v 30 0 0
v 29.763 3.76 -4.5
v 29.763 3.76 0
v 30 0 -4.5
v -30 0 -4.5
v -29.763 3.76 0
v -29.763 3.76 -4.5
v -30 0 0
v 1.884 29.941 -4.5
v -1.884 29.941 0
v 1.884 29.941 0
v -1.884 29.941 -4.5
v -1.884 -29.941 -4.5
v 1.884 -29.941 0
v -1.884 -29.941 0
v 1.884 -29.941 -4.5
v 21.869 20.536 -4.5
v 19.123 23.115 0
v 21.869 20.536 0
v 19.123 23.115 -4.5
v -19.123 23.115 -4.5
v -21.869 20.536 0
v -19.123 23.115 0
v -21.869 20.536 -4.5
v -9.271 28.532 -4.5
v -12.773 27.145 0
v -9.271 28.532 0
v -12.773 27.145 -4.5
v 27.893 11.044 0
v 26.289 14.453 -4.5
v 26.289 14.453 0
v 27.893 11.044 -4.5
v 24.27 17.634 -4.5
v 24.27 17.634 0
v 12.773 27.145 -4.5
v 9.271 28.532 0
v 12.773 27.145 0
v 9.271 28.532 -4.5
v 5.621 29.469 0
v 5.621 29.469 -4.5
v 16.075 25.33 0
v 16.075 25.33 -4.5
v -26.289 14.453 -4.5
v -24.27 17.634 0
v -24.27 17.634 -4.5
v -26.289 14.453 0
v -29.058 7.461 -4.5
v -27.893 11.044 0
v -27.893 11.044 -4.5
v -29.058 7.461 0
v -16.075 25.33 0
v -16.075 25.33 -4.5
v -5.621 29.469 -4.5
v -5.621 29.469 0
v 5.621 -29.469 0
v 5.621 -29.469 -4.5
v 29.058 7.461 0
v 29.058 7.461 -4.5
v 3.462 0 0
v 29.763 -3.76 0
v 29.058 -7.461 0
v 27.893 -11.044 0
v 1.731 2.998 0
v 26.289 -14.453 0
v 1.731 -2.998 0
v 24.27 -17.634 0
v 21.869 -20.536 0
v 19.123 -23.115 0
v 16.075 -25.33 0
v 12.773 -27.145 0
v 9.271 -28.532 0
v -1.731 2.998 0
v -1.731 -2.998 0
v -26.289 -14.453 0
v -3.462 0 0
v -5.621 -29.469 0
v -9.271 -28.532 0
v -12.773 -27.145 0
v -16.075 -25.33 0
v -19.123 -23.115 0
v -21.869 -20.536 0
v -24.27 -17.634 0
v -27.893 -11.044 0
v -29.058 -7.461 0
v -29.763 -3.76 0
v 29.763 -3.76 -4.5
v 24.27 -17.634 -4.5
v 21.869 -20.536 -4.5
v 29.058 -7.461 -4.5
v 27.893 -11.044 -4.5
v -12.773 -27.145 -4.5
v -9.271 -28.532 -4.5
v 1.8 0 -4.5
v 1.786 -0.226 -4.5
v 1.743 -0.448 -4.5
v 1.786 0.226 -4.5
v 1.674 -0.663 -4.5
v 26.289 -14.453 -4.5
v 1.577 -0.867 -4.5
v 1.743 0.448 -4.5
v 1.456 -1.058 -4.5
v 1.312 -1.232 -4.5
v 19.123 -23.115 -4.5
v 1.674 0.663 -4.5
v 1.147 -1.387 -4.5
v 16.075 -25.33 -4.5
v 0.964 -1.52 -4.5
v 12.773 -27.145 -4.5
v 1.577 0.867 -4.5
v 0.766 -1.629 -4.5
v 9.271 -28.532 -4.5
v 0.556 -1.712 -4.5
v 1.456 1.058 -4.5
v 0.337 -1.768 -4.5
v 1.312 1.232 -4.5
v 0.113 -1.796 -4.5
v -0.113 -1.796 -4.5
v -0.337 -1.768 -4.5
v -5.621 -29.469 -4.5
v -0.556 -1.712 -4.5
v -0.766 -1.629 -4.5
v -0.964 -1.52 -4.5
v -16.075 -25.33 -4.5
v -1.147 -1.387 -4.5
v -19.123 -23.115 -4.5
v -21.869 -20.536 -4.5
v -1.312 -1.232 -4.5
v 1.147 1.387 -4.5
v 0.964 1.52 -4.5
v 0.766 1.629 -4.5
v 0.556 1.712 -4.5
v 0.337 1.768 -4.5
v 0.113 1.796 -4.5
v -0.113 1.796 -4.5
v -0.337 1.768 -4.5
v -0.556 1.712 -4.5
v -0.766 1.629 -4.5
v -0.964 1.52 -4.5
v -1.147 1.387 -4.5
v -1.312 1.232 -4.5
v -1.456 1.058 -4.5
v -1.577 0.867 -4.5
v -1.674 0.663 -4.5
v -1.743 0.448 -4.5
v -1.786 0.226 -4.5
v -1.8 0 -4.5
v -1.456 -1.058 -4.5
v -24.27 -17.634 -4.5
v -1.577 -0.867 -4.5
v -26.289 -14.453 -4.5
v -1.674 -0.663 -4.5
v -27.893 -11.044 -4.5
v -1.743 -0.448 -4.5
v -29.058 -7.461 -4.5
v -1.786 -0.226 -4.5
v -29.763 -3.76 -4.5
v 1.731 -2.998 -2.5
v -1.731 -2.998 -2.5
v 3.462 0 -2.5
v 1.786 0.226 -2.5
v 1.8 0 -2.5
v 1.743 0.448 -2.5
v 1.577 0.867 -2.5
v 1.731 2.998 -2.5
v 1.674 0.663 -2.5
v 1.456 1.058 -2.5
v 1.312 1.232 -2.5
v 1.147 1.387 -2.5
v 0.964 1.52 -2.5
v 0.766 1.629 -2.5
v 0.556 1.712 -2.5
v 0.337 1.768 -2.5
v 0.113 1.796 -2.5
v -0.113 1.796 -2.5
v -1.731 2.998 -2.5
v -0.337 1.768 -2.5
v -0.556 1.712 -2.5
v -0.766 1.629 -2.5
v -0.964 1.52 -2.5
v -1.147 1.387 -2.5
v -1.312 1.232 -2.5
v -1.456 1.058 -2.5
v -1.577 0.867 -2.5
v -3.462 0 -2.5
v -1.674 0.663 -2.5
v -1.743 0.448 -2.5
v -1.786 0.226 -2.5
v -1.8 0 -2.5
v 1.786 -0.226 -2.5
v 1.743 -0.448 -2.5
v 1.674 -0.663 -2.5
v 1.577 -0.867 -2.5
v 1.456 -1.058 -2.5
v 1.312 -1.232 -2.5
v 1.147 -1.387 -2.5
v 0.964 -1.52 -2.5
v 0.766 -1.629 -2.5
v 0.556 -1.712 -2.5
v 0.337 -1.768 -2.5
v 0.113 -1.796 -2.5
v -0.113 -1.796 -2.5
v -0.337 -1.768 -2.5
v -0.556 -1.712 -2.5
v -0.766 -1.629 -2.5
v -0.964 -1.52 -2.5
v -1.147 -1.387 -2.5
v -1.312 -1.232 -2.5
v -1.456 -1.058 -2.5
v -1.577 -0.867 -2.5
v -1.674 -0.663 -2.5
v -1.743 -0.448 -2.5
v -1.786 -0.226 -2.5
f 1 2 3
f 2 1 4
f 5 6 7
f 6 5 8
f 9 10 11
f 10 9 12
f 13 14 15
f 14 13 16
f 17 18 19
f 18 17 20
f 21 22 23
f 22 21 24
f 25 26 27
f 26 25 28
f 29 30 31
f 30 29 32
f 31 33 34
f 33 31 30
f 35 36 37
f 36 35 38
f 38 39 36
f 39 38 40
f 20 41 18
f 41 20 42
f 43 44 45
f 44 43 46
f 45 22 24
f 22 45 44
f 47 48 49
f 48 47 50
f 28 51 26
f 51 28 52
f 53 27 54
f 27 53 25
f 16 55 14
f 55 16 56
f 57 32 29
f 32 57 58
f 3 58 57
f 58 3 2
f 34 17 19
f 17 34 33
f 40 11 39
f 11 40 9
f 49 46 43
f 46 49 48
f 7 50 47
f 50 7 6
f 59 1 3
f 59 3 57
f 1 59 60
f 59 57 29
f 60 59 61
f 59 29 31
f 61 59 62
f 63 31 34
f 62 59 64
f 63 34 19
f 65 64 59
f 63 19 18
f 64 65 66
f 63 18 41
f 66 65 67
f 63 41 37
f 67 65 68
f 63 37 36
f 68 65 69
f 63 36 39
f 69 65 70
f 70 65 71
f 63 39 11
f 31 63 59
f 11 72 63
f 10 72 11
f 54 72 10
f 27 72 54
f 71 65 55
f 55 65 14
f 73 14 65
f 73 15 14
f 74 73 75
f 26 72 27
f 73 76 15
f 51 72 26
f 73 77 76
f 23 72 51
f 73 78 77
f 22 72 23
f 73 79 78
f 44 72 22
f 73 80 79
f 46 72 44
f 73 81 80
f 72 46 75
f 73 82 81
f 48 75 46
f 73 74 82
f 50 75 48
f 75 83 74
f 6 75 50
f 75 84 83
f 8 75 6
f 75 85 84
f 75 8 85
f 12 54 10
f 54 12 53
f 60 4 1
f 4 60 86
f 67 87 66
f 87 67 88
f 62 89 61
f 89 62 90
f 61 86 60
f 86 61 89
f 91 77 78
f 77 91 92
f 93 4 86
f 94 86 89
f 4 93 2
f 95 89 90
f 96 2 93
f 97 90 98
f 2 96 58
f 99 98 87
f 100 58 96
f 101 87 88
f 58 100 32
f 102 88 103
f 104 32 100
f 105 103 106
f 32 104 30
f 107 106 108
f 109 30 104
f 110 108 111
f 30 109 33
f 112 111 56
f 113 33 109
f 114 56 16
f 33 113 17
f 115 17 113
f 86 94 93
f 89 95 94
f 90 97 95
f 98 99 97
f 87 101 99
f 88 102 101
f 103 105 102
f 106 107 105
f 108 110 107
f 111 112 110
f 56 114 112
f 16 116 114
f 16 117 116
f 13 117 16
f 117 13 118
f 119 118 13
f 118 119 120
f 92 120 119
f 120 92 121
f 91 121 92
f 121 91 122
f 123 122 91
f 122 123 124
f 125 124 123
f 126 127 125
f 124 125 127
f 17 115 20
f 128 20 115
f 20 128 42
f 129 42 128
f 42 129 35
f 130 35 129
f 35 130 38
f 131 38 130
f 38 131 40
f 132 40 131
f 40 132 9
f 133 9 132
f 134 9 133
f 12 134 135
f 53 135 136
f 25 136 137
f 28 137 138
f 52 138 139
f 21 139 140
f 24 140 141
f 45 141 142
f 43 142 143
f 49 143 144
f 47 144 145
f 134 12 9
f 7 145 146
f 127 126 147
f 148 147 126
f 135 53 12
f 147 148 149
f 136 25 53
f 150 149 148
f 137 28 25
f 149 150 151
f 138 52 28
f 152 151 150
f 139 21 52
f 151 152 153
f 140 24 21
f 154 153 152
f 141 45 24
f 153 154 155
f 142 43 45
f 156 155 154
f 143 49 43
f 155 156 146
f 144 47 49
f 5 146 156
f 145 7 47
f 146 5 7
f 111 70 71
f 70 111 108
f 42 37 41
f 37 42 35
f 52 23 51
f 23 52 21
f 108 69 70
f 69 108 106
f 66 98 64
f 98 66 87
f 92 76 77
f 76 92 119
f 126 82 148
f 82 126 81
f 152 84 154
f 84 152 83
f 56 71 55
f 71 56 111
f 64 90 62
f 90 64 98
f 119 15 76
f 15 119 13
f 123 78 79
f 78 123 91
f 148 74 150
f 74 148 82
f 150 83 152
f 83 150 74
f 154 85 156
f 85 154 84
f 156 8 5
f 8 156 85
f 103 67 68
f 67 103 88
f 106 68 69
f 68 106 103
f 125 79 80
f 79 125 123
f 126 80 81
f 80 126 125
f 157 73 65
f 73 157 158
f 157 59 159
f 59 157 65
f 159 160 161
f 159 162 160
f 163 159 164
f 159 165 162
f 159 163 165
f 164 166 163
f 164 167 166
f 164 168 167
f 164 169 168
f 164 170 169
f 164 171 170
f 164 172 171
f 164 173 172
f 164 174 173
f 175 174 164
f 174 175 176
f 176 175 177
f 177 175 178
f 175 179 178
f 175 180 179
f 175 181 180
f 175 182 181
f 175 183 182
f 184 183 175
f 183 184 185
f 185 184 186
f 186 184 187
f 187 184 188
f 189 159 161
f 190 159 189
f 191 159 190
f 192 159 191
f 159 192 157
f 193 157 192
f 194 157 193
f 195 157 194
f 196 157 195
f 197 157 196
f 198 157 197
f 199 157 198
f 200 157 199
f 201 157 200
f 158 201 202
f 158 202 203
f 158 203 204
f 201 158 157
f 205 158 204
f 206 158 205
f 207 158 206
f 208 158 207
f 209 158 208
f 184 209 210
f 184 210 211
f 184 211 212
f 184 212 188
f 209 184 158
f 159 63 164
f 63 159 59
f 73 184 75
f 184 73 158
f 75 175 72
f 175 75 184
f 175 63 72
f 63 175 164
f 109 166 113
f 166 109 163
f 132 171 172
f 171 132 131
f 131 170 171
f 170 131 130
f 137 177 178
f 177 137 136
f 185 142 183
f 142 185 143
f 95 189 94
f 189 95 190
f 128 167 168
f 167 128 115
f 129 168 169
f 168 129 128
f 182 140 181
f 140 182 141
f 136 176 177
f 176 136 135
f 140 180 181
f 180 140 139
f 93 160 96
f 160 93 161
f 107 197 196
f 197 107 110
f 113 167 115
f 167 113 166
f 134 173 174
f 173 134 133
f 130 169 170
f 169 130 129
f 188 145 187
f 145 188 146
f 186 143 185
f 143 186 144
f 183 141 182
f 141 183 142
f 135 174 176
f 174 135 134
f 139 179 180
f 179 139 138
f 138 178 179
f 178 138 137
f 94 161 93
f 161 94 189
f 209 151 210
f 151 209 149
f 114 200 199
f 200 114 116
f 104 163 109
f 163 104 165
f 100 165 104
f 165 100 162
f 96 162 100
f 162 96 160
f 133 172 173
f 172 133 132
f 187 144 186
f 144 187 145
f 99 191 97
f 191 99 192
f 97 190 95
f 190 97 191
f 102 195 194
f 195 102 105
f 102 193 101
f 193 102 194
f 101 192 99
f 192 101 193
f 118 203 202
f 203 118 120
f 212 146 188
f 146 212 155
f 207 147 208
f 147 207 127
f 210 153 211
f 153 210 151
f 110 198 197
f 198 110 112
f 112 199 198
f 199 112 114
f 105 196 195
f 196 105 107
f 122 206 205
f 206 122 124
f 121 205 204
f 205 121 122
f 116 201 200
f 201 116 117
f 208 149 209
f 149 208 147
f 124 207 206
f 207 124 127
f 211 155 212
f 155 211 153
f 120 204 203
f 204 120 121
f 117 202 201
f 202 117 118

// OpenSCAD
$fn = 50;


difference() {
	union() {
		translate(v = [0, 0, -4.5000000000]) {
			cylinder(h = 4.5000000000, r = 30.0000000000);
		}
		translate(v = [0, 0, -3.0000000000]) {
			cylinder(h = 3, r = 2.8750000000);
		}
	}
	union() {
		translate(v = [0, 0, 0]) {
			rotate(a = [0, 0, 0]) {
				difference() {
					union() {
						translate(v = [0, 0, -2.5000000000]) {
							linear_extrude(height = 2.5000000000) {
								polygon(points = [[3.4620000000, 0.0000000000], [1.7310000000, 2.9981799479], [-1.7310000000, 2.9981799479], [-3.4620000000, 0.0000000000], [-1.7310000000, -2.9981799479], [1.7310000000, -2.9981799479]]);
							}
						}
					}
					union();
				}
			}
		}
		#translate(v = [0, 0, -100.0000000000]) {
			cylinder(h = 200, r = 1.8000000000);
		}
	}
}
